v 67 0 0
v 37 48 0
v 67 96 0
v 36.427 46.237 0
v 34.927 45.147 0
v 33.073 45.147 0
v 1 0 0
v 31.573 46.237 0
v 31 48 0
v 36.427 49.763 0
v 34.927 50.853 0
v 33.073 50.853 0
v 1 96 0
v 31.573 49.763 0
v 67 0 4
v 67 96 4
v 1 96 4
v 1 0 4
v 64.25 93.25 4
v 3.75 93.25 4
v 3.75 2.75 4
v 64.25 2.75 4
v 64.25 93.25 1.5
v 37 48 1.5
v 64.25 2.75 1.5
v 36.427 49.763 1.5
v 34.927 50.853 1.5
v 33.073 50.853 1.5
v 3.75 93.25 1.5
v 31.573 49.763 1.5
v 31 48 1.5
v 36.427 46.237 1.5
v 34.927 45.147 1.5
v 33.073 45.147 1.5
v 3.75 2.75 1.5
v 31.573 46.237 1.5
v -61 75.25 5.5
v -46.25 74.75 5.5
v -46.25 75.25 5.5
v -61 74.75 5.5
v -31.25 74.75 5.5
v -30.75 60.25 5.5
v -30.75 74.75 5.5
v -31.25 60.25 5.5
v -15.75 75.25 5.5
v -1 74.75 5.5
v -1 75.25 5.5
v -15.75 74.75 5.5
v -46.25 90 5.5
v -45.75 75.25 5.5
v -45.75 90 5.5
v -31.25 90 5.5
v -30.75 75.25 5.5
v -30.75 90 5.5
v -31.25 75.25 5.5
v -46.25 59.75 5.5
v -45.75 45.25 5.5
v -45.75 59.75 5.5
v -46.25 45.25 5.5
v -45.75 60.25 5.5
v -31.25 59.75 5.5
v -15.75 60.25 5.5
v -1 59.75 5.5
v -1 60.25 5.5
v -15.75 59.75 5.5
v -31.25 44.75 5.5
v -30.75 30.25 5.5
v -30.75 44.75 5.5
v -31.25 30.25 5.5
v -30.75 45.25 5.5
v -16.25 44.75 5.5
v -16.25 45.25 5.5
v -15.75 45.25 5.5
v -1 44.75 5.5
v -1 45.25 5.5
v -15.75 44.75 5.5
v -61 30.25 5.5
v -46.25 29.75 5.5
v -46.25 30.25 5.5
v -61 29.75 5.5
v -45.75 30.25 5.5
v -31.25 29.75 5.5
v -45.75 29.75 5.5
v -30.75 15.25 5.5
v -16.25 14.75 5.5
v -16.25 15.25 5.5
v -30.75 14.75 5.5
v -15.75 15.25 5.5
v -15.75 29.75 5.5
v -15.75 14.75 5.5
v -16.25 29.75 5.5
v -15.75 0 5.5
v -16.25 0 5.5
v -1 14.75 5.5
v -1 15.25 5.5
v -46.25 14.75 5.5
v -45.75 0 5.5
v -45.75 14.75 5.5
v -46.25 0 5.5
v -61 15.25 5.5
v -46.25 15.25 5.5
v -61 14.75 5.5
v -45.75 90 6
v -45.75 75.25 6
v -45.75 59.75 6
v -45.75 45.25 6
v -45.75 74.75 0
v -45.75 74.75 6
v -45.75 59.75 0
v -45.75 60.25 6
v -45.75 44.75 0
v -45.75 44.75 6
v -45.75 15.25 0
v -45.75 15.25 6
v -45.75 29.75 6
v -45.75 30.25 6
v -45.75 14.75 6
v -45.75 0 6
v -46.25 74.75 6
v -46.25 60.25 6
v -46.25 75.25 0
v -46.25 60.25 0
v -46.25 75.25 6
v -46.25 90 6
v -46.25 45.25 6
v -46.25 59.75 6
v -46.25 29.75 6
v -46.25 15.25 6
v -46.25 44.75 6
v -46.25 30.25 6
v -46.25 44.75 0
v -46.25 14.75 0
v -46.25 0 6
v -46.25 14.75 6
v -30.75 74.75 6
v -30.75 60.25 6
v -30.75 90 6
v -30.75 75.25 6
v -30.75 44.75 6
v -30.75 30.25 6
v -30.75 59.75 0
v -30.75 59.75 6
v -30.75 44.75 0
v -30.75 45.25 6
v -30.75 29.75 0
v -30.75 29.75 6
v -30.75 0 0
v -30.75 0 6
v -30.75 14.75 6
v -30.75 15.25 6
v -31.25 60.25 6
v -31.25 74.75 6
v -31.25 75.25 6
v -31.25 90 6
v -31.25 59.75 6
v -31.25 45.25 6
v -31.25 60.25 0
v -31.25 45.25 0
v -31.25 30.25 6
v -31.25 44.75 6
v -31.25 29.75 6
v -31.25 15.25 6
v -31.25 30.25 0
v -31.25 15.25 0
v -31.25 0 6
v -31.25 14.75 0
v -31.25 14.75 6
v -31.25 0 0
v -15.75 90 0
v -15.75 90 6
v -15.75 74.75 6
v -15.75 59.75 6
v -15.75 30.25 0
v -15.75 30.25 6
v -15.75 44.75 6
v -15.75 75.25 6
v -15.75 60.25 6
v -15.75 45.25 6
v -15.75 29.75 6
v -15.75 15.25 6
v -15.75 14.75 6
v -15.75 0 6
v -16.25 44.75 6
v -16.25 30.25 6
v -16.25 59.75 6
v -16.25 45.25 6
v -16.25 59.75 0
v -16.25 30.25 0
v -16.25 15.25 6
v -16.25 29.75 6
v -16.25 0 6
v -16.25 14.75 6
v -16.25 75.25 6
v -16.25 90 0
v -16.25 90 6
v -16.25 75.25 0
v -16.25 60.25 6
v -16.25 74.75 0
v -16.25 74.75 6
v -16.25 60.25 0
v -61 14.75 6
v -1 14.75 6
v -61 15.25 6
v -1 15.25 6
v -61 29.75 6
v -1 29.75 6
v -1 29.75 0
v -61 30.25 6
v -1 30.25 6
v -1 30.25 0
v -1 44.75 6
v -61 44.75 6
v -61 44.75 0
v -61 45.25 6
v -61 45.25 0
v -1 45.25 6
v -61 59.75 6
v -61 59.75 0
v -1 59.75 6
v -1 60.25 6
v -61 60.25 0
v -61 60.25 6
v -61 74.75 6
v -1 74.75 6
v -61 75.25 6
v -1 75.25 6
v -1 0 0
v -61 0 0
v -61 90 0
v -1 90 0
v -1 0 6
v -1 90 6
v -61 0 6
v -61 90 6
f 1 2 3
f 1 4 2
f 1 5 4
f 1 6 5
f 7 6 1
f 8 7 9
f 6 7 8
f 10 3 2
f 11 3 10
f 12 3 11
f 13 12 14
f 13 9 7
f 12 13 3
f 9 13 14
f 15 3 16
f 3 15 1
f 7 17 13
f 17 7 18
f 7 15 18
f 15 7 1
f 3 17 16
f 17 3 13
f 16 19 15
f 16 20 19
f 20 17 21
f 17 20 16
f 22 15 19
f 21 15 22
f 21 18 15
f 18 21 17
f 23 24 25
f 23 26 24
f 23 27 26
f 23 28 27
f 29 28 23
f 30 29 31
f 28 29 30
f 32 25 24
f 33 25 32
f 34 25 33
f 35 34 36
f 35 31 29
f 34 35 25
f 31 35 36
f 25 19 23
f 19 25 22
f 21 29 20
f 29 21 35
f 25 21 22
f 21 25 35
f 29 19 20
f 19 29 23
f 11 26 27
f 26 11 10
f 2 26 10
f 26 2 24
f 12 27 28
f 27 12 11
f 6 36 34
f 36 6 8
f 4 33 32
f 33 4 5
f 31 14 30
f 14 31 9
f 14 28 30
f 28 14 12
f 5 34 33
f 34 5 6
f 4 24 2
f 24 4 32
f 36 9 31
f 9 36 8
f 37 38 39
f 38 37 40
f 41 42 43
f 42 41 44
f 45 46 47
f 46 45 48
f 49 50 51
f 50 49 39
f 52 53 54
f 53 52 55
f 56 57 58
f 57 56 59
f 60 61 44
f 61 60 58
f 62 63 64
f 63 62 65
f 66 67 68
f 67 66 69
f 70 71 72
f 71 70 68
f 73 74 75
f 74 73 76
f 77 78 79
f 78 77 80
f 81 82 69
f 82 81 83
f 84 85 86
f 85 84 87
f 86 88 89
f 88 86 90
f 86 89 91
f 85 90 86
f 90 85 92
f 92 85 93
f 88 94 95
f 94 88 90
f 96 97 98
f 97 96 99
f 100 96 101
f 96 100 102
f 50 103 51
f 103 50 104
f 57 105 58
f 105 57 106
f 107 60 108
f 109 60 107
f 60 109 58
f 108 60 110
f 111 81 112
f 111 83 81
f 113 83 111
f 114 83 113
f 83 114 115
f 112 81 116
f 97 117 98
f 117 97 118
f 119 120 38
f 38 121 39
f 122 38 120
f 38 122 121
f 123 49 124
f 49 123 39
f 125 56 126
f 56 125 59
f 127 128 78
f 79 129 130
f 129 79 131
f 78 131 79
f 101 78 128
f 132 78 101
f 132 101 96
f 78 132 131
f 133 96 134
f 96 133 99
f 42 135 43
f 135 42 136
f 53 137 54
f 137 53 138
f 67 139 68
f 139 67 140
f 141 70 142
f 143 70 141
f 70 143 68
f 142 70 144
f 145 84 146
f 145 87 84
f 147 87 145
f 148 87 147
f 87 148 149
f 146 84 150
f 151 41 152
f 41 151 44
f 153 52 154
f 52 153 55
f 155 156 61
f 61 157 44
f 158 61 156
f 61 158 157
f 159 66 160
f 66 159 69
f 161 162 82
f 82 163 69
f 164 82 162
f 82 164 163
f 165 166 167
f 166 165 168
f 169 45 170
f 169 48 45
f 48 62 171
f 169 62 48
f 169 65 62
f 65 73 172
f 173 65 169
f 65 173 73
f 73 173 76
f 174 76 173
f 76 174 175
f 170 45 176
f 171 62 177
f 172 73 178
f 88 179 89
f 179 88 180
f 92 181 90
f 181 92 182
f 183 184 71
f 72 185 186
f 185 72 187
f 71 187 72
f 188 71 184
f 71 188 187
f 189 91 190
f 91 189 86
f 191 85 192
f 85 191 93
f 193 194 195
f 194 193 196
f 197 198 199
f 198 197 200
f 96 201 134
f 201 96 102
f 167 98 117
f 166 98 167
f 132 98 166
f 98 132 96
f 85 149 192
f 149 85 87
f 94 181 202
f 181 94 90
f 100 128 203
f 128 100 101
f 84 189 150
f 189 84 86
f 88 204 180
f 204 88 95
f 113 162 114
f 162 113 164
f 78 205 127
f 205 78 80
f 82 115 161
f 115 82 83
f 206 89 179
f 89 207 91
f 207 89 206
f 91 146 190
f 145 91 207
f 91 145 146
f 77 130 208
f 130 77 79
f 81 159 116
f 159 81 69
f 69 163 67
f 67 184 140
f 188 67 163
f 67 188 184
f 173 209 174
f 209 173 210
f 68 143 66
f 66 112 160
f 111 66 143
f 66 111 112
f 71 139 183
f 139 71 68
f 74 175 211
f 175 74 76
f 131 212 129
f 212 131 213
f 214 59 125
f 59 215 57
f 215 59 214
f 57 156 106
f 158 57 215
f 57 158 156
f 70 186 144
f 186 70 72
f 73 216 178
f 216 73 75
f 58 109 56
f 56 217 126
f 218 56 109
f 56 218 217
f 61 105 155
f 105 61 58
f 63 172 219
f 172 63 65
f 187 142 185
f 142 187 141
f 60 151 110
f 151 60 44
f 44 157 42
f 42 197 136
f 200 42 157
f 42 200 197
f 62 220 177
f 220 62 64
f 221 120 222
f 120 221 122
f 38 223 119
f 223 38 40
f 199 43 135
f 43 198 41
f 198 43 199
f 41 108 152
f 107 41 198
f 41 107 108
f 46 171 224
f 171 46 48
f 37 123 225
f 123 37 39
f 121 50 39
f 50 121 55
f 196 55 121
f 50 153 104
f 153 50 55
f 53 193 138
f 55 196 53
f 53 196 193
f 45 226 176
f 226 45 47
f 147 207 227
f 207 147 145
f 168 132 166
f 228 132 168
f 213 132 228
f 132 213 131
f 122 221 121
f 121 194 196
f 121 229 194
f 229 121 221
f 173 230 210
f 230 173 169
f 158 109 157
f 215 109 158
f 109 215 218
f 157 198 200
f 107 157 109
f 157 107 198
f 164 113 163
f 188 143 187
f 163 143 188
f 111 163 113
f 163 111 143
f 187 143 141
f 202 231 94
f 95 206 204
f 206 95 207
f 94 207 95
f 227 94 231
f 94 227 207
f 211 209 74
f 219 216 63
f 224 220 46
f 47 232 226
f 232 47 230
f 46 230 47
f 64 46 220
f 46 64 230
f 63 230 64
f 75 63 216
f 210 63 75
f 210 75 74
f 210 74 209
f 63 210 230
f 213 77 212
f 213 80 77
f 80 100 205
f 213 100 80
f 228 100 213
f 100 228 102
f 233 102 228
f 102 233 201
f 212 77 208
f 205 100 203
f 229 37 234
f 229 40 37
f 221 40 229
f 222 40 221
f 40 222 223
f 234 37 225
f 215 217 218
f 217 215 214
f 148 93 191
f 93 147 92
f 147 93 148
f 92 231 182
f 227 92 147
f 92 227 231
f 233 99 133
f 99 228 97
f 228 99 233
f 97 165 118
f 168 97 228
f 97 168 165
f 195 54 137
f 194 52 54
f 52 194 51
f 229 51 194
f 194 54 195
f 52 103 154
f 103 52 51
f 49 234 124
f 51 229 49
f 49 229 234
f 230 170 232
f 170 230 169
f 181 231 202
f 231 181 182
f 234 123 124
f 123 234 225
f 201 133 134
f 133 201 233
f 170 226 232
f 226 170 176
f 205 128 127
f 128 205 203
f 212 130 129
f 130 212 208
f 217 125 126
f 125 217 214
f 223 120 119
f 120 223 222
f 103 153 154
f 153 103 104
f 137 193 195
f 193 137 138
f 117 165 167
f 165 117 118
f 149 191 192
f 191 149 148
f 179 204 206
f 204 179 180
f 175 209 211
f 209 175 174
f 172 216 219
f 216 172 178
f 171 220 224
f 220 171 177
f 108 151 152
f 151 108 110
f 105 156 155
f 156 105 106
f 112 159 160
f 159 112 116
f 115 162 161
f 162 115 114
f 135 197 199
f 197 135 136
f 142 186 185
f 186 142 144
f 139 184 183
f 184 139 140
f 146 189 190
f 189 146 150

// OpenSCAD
// file: common.scad
block_size = 15;
base_height = 6;
// x plane split into 4 blocks
base_width = 4 * block_size;
// y plane split into 6 blocks
base_length = 6 * block_size;
gap = 0.5;

module base_block() {
  linear_extrude(base_height) square([base_width, base_length]);
}

module tray() {
    w = base_width;
    l = base_length;
    difference() {
        linear_extrude(4) square ([w+6,l+6]);
        translate([3-gap/2,3-gap/2,1.5]) linear_extrude(10) square([w+gap,l+gap]);
        translate([(w+6)/2,(l+6)/2,-1]) linear_extrude(10) circle(3);
    }
}

// Cut all the way through the base block on a grid line defined by the block
// size
module cutter(x1,y1,x2,y2,z,h) {
    x1c = x1 * block_size - gap/2;
    y1c = y1 * block_size - gap/2;
    x2c = x2 * block_size + gap/2;
    y2c = y2 * block_size + gap/2;
    cutx = x1 == x2 ? gap : x2c-x1c;
    cuty = y1 == y2 ? gap : y2c-y1c;
    translate([x1c,y1c,z]) linear_extrude(h) {
        square([cutx,cuty]);
    }
}

// Cut lines of a fixed width out of the puzzle block
module jigsaw(x1,y1,x2,y2) {
    cutter(x1,y1,x2,y2,-1,base_height+2);
}

module groove(x1,y1,x2,y2) {
    cutter(x1,y1,x2,y2,base_height-0.5,1);
}

module cut_grid() {
    for (x = [1:3]) {
        groove(x,0,x,6);
    }
    for (y = [1:5]) {
        groove(0,y,4,y);
    }
}
// main file
include <common.scad>

// Define all the cuts to form the pieces
module cut_blocks() {
    // Maximum effort
    jigsaw(2,0,2,2);
    jigsaw(2,2,4,2);
    jigsaw(1,1,2,1);
    jigsaw(1,1,1,3);
    jigsaw(0,3,2,3);
    jigsaw(2,3,2,4);
    jigsaw(2,4,3,4);
    jigsaw(3,2,3,6);
    jigsaw(0,4,1,4);
    jigsaw(1,4,1,5);
    jigsaw(1,5,3,5);
}

translate([-base_width-1,0,0])
    difference() {
        base_block();
        cut_grid();
        #cut_blocks();
    }

translate([1,0,0]) tray(base_width, base_length);
